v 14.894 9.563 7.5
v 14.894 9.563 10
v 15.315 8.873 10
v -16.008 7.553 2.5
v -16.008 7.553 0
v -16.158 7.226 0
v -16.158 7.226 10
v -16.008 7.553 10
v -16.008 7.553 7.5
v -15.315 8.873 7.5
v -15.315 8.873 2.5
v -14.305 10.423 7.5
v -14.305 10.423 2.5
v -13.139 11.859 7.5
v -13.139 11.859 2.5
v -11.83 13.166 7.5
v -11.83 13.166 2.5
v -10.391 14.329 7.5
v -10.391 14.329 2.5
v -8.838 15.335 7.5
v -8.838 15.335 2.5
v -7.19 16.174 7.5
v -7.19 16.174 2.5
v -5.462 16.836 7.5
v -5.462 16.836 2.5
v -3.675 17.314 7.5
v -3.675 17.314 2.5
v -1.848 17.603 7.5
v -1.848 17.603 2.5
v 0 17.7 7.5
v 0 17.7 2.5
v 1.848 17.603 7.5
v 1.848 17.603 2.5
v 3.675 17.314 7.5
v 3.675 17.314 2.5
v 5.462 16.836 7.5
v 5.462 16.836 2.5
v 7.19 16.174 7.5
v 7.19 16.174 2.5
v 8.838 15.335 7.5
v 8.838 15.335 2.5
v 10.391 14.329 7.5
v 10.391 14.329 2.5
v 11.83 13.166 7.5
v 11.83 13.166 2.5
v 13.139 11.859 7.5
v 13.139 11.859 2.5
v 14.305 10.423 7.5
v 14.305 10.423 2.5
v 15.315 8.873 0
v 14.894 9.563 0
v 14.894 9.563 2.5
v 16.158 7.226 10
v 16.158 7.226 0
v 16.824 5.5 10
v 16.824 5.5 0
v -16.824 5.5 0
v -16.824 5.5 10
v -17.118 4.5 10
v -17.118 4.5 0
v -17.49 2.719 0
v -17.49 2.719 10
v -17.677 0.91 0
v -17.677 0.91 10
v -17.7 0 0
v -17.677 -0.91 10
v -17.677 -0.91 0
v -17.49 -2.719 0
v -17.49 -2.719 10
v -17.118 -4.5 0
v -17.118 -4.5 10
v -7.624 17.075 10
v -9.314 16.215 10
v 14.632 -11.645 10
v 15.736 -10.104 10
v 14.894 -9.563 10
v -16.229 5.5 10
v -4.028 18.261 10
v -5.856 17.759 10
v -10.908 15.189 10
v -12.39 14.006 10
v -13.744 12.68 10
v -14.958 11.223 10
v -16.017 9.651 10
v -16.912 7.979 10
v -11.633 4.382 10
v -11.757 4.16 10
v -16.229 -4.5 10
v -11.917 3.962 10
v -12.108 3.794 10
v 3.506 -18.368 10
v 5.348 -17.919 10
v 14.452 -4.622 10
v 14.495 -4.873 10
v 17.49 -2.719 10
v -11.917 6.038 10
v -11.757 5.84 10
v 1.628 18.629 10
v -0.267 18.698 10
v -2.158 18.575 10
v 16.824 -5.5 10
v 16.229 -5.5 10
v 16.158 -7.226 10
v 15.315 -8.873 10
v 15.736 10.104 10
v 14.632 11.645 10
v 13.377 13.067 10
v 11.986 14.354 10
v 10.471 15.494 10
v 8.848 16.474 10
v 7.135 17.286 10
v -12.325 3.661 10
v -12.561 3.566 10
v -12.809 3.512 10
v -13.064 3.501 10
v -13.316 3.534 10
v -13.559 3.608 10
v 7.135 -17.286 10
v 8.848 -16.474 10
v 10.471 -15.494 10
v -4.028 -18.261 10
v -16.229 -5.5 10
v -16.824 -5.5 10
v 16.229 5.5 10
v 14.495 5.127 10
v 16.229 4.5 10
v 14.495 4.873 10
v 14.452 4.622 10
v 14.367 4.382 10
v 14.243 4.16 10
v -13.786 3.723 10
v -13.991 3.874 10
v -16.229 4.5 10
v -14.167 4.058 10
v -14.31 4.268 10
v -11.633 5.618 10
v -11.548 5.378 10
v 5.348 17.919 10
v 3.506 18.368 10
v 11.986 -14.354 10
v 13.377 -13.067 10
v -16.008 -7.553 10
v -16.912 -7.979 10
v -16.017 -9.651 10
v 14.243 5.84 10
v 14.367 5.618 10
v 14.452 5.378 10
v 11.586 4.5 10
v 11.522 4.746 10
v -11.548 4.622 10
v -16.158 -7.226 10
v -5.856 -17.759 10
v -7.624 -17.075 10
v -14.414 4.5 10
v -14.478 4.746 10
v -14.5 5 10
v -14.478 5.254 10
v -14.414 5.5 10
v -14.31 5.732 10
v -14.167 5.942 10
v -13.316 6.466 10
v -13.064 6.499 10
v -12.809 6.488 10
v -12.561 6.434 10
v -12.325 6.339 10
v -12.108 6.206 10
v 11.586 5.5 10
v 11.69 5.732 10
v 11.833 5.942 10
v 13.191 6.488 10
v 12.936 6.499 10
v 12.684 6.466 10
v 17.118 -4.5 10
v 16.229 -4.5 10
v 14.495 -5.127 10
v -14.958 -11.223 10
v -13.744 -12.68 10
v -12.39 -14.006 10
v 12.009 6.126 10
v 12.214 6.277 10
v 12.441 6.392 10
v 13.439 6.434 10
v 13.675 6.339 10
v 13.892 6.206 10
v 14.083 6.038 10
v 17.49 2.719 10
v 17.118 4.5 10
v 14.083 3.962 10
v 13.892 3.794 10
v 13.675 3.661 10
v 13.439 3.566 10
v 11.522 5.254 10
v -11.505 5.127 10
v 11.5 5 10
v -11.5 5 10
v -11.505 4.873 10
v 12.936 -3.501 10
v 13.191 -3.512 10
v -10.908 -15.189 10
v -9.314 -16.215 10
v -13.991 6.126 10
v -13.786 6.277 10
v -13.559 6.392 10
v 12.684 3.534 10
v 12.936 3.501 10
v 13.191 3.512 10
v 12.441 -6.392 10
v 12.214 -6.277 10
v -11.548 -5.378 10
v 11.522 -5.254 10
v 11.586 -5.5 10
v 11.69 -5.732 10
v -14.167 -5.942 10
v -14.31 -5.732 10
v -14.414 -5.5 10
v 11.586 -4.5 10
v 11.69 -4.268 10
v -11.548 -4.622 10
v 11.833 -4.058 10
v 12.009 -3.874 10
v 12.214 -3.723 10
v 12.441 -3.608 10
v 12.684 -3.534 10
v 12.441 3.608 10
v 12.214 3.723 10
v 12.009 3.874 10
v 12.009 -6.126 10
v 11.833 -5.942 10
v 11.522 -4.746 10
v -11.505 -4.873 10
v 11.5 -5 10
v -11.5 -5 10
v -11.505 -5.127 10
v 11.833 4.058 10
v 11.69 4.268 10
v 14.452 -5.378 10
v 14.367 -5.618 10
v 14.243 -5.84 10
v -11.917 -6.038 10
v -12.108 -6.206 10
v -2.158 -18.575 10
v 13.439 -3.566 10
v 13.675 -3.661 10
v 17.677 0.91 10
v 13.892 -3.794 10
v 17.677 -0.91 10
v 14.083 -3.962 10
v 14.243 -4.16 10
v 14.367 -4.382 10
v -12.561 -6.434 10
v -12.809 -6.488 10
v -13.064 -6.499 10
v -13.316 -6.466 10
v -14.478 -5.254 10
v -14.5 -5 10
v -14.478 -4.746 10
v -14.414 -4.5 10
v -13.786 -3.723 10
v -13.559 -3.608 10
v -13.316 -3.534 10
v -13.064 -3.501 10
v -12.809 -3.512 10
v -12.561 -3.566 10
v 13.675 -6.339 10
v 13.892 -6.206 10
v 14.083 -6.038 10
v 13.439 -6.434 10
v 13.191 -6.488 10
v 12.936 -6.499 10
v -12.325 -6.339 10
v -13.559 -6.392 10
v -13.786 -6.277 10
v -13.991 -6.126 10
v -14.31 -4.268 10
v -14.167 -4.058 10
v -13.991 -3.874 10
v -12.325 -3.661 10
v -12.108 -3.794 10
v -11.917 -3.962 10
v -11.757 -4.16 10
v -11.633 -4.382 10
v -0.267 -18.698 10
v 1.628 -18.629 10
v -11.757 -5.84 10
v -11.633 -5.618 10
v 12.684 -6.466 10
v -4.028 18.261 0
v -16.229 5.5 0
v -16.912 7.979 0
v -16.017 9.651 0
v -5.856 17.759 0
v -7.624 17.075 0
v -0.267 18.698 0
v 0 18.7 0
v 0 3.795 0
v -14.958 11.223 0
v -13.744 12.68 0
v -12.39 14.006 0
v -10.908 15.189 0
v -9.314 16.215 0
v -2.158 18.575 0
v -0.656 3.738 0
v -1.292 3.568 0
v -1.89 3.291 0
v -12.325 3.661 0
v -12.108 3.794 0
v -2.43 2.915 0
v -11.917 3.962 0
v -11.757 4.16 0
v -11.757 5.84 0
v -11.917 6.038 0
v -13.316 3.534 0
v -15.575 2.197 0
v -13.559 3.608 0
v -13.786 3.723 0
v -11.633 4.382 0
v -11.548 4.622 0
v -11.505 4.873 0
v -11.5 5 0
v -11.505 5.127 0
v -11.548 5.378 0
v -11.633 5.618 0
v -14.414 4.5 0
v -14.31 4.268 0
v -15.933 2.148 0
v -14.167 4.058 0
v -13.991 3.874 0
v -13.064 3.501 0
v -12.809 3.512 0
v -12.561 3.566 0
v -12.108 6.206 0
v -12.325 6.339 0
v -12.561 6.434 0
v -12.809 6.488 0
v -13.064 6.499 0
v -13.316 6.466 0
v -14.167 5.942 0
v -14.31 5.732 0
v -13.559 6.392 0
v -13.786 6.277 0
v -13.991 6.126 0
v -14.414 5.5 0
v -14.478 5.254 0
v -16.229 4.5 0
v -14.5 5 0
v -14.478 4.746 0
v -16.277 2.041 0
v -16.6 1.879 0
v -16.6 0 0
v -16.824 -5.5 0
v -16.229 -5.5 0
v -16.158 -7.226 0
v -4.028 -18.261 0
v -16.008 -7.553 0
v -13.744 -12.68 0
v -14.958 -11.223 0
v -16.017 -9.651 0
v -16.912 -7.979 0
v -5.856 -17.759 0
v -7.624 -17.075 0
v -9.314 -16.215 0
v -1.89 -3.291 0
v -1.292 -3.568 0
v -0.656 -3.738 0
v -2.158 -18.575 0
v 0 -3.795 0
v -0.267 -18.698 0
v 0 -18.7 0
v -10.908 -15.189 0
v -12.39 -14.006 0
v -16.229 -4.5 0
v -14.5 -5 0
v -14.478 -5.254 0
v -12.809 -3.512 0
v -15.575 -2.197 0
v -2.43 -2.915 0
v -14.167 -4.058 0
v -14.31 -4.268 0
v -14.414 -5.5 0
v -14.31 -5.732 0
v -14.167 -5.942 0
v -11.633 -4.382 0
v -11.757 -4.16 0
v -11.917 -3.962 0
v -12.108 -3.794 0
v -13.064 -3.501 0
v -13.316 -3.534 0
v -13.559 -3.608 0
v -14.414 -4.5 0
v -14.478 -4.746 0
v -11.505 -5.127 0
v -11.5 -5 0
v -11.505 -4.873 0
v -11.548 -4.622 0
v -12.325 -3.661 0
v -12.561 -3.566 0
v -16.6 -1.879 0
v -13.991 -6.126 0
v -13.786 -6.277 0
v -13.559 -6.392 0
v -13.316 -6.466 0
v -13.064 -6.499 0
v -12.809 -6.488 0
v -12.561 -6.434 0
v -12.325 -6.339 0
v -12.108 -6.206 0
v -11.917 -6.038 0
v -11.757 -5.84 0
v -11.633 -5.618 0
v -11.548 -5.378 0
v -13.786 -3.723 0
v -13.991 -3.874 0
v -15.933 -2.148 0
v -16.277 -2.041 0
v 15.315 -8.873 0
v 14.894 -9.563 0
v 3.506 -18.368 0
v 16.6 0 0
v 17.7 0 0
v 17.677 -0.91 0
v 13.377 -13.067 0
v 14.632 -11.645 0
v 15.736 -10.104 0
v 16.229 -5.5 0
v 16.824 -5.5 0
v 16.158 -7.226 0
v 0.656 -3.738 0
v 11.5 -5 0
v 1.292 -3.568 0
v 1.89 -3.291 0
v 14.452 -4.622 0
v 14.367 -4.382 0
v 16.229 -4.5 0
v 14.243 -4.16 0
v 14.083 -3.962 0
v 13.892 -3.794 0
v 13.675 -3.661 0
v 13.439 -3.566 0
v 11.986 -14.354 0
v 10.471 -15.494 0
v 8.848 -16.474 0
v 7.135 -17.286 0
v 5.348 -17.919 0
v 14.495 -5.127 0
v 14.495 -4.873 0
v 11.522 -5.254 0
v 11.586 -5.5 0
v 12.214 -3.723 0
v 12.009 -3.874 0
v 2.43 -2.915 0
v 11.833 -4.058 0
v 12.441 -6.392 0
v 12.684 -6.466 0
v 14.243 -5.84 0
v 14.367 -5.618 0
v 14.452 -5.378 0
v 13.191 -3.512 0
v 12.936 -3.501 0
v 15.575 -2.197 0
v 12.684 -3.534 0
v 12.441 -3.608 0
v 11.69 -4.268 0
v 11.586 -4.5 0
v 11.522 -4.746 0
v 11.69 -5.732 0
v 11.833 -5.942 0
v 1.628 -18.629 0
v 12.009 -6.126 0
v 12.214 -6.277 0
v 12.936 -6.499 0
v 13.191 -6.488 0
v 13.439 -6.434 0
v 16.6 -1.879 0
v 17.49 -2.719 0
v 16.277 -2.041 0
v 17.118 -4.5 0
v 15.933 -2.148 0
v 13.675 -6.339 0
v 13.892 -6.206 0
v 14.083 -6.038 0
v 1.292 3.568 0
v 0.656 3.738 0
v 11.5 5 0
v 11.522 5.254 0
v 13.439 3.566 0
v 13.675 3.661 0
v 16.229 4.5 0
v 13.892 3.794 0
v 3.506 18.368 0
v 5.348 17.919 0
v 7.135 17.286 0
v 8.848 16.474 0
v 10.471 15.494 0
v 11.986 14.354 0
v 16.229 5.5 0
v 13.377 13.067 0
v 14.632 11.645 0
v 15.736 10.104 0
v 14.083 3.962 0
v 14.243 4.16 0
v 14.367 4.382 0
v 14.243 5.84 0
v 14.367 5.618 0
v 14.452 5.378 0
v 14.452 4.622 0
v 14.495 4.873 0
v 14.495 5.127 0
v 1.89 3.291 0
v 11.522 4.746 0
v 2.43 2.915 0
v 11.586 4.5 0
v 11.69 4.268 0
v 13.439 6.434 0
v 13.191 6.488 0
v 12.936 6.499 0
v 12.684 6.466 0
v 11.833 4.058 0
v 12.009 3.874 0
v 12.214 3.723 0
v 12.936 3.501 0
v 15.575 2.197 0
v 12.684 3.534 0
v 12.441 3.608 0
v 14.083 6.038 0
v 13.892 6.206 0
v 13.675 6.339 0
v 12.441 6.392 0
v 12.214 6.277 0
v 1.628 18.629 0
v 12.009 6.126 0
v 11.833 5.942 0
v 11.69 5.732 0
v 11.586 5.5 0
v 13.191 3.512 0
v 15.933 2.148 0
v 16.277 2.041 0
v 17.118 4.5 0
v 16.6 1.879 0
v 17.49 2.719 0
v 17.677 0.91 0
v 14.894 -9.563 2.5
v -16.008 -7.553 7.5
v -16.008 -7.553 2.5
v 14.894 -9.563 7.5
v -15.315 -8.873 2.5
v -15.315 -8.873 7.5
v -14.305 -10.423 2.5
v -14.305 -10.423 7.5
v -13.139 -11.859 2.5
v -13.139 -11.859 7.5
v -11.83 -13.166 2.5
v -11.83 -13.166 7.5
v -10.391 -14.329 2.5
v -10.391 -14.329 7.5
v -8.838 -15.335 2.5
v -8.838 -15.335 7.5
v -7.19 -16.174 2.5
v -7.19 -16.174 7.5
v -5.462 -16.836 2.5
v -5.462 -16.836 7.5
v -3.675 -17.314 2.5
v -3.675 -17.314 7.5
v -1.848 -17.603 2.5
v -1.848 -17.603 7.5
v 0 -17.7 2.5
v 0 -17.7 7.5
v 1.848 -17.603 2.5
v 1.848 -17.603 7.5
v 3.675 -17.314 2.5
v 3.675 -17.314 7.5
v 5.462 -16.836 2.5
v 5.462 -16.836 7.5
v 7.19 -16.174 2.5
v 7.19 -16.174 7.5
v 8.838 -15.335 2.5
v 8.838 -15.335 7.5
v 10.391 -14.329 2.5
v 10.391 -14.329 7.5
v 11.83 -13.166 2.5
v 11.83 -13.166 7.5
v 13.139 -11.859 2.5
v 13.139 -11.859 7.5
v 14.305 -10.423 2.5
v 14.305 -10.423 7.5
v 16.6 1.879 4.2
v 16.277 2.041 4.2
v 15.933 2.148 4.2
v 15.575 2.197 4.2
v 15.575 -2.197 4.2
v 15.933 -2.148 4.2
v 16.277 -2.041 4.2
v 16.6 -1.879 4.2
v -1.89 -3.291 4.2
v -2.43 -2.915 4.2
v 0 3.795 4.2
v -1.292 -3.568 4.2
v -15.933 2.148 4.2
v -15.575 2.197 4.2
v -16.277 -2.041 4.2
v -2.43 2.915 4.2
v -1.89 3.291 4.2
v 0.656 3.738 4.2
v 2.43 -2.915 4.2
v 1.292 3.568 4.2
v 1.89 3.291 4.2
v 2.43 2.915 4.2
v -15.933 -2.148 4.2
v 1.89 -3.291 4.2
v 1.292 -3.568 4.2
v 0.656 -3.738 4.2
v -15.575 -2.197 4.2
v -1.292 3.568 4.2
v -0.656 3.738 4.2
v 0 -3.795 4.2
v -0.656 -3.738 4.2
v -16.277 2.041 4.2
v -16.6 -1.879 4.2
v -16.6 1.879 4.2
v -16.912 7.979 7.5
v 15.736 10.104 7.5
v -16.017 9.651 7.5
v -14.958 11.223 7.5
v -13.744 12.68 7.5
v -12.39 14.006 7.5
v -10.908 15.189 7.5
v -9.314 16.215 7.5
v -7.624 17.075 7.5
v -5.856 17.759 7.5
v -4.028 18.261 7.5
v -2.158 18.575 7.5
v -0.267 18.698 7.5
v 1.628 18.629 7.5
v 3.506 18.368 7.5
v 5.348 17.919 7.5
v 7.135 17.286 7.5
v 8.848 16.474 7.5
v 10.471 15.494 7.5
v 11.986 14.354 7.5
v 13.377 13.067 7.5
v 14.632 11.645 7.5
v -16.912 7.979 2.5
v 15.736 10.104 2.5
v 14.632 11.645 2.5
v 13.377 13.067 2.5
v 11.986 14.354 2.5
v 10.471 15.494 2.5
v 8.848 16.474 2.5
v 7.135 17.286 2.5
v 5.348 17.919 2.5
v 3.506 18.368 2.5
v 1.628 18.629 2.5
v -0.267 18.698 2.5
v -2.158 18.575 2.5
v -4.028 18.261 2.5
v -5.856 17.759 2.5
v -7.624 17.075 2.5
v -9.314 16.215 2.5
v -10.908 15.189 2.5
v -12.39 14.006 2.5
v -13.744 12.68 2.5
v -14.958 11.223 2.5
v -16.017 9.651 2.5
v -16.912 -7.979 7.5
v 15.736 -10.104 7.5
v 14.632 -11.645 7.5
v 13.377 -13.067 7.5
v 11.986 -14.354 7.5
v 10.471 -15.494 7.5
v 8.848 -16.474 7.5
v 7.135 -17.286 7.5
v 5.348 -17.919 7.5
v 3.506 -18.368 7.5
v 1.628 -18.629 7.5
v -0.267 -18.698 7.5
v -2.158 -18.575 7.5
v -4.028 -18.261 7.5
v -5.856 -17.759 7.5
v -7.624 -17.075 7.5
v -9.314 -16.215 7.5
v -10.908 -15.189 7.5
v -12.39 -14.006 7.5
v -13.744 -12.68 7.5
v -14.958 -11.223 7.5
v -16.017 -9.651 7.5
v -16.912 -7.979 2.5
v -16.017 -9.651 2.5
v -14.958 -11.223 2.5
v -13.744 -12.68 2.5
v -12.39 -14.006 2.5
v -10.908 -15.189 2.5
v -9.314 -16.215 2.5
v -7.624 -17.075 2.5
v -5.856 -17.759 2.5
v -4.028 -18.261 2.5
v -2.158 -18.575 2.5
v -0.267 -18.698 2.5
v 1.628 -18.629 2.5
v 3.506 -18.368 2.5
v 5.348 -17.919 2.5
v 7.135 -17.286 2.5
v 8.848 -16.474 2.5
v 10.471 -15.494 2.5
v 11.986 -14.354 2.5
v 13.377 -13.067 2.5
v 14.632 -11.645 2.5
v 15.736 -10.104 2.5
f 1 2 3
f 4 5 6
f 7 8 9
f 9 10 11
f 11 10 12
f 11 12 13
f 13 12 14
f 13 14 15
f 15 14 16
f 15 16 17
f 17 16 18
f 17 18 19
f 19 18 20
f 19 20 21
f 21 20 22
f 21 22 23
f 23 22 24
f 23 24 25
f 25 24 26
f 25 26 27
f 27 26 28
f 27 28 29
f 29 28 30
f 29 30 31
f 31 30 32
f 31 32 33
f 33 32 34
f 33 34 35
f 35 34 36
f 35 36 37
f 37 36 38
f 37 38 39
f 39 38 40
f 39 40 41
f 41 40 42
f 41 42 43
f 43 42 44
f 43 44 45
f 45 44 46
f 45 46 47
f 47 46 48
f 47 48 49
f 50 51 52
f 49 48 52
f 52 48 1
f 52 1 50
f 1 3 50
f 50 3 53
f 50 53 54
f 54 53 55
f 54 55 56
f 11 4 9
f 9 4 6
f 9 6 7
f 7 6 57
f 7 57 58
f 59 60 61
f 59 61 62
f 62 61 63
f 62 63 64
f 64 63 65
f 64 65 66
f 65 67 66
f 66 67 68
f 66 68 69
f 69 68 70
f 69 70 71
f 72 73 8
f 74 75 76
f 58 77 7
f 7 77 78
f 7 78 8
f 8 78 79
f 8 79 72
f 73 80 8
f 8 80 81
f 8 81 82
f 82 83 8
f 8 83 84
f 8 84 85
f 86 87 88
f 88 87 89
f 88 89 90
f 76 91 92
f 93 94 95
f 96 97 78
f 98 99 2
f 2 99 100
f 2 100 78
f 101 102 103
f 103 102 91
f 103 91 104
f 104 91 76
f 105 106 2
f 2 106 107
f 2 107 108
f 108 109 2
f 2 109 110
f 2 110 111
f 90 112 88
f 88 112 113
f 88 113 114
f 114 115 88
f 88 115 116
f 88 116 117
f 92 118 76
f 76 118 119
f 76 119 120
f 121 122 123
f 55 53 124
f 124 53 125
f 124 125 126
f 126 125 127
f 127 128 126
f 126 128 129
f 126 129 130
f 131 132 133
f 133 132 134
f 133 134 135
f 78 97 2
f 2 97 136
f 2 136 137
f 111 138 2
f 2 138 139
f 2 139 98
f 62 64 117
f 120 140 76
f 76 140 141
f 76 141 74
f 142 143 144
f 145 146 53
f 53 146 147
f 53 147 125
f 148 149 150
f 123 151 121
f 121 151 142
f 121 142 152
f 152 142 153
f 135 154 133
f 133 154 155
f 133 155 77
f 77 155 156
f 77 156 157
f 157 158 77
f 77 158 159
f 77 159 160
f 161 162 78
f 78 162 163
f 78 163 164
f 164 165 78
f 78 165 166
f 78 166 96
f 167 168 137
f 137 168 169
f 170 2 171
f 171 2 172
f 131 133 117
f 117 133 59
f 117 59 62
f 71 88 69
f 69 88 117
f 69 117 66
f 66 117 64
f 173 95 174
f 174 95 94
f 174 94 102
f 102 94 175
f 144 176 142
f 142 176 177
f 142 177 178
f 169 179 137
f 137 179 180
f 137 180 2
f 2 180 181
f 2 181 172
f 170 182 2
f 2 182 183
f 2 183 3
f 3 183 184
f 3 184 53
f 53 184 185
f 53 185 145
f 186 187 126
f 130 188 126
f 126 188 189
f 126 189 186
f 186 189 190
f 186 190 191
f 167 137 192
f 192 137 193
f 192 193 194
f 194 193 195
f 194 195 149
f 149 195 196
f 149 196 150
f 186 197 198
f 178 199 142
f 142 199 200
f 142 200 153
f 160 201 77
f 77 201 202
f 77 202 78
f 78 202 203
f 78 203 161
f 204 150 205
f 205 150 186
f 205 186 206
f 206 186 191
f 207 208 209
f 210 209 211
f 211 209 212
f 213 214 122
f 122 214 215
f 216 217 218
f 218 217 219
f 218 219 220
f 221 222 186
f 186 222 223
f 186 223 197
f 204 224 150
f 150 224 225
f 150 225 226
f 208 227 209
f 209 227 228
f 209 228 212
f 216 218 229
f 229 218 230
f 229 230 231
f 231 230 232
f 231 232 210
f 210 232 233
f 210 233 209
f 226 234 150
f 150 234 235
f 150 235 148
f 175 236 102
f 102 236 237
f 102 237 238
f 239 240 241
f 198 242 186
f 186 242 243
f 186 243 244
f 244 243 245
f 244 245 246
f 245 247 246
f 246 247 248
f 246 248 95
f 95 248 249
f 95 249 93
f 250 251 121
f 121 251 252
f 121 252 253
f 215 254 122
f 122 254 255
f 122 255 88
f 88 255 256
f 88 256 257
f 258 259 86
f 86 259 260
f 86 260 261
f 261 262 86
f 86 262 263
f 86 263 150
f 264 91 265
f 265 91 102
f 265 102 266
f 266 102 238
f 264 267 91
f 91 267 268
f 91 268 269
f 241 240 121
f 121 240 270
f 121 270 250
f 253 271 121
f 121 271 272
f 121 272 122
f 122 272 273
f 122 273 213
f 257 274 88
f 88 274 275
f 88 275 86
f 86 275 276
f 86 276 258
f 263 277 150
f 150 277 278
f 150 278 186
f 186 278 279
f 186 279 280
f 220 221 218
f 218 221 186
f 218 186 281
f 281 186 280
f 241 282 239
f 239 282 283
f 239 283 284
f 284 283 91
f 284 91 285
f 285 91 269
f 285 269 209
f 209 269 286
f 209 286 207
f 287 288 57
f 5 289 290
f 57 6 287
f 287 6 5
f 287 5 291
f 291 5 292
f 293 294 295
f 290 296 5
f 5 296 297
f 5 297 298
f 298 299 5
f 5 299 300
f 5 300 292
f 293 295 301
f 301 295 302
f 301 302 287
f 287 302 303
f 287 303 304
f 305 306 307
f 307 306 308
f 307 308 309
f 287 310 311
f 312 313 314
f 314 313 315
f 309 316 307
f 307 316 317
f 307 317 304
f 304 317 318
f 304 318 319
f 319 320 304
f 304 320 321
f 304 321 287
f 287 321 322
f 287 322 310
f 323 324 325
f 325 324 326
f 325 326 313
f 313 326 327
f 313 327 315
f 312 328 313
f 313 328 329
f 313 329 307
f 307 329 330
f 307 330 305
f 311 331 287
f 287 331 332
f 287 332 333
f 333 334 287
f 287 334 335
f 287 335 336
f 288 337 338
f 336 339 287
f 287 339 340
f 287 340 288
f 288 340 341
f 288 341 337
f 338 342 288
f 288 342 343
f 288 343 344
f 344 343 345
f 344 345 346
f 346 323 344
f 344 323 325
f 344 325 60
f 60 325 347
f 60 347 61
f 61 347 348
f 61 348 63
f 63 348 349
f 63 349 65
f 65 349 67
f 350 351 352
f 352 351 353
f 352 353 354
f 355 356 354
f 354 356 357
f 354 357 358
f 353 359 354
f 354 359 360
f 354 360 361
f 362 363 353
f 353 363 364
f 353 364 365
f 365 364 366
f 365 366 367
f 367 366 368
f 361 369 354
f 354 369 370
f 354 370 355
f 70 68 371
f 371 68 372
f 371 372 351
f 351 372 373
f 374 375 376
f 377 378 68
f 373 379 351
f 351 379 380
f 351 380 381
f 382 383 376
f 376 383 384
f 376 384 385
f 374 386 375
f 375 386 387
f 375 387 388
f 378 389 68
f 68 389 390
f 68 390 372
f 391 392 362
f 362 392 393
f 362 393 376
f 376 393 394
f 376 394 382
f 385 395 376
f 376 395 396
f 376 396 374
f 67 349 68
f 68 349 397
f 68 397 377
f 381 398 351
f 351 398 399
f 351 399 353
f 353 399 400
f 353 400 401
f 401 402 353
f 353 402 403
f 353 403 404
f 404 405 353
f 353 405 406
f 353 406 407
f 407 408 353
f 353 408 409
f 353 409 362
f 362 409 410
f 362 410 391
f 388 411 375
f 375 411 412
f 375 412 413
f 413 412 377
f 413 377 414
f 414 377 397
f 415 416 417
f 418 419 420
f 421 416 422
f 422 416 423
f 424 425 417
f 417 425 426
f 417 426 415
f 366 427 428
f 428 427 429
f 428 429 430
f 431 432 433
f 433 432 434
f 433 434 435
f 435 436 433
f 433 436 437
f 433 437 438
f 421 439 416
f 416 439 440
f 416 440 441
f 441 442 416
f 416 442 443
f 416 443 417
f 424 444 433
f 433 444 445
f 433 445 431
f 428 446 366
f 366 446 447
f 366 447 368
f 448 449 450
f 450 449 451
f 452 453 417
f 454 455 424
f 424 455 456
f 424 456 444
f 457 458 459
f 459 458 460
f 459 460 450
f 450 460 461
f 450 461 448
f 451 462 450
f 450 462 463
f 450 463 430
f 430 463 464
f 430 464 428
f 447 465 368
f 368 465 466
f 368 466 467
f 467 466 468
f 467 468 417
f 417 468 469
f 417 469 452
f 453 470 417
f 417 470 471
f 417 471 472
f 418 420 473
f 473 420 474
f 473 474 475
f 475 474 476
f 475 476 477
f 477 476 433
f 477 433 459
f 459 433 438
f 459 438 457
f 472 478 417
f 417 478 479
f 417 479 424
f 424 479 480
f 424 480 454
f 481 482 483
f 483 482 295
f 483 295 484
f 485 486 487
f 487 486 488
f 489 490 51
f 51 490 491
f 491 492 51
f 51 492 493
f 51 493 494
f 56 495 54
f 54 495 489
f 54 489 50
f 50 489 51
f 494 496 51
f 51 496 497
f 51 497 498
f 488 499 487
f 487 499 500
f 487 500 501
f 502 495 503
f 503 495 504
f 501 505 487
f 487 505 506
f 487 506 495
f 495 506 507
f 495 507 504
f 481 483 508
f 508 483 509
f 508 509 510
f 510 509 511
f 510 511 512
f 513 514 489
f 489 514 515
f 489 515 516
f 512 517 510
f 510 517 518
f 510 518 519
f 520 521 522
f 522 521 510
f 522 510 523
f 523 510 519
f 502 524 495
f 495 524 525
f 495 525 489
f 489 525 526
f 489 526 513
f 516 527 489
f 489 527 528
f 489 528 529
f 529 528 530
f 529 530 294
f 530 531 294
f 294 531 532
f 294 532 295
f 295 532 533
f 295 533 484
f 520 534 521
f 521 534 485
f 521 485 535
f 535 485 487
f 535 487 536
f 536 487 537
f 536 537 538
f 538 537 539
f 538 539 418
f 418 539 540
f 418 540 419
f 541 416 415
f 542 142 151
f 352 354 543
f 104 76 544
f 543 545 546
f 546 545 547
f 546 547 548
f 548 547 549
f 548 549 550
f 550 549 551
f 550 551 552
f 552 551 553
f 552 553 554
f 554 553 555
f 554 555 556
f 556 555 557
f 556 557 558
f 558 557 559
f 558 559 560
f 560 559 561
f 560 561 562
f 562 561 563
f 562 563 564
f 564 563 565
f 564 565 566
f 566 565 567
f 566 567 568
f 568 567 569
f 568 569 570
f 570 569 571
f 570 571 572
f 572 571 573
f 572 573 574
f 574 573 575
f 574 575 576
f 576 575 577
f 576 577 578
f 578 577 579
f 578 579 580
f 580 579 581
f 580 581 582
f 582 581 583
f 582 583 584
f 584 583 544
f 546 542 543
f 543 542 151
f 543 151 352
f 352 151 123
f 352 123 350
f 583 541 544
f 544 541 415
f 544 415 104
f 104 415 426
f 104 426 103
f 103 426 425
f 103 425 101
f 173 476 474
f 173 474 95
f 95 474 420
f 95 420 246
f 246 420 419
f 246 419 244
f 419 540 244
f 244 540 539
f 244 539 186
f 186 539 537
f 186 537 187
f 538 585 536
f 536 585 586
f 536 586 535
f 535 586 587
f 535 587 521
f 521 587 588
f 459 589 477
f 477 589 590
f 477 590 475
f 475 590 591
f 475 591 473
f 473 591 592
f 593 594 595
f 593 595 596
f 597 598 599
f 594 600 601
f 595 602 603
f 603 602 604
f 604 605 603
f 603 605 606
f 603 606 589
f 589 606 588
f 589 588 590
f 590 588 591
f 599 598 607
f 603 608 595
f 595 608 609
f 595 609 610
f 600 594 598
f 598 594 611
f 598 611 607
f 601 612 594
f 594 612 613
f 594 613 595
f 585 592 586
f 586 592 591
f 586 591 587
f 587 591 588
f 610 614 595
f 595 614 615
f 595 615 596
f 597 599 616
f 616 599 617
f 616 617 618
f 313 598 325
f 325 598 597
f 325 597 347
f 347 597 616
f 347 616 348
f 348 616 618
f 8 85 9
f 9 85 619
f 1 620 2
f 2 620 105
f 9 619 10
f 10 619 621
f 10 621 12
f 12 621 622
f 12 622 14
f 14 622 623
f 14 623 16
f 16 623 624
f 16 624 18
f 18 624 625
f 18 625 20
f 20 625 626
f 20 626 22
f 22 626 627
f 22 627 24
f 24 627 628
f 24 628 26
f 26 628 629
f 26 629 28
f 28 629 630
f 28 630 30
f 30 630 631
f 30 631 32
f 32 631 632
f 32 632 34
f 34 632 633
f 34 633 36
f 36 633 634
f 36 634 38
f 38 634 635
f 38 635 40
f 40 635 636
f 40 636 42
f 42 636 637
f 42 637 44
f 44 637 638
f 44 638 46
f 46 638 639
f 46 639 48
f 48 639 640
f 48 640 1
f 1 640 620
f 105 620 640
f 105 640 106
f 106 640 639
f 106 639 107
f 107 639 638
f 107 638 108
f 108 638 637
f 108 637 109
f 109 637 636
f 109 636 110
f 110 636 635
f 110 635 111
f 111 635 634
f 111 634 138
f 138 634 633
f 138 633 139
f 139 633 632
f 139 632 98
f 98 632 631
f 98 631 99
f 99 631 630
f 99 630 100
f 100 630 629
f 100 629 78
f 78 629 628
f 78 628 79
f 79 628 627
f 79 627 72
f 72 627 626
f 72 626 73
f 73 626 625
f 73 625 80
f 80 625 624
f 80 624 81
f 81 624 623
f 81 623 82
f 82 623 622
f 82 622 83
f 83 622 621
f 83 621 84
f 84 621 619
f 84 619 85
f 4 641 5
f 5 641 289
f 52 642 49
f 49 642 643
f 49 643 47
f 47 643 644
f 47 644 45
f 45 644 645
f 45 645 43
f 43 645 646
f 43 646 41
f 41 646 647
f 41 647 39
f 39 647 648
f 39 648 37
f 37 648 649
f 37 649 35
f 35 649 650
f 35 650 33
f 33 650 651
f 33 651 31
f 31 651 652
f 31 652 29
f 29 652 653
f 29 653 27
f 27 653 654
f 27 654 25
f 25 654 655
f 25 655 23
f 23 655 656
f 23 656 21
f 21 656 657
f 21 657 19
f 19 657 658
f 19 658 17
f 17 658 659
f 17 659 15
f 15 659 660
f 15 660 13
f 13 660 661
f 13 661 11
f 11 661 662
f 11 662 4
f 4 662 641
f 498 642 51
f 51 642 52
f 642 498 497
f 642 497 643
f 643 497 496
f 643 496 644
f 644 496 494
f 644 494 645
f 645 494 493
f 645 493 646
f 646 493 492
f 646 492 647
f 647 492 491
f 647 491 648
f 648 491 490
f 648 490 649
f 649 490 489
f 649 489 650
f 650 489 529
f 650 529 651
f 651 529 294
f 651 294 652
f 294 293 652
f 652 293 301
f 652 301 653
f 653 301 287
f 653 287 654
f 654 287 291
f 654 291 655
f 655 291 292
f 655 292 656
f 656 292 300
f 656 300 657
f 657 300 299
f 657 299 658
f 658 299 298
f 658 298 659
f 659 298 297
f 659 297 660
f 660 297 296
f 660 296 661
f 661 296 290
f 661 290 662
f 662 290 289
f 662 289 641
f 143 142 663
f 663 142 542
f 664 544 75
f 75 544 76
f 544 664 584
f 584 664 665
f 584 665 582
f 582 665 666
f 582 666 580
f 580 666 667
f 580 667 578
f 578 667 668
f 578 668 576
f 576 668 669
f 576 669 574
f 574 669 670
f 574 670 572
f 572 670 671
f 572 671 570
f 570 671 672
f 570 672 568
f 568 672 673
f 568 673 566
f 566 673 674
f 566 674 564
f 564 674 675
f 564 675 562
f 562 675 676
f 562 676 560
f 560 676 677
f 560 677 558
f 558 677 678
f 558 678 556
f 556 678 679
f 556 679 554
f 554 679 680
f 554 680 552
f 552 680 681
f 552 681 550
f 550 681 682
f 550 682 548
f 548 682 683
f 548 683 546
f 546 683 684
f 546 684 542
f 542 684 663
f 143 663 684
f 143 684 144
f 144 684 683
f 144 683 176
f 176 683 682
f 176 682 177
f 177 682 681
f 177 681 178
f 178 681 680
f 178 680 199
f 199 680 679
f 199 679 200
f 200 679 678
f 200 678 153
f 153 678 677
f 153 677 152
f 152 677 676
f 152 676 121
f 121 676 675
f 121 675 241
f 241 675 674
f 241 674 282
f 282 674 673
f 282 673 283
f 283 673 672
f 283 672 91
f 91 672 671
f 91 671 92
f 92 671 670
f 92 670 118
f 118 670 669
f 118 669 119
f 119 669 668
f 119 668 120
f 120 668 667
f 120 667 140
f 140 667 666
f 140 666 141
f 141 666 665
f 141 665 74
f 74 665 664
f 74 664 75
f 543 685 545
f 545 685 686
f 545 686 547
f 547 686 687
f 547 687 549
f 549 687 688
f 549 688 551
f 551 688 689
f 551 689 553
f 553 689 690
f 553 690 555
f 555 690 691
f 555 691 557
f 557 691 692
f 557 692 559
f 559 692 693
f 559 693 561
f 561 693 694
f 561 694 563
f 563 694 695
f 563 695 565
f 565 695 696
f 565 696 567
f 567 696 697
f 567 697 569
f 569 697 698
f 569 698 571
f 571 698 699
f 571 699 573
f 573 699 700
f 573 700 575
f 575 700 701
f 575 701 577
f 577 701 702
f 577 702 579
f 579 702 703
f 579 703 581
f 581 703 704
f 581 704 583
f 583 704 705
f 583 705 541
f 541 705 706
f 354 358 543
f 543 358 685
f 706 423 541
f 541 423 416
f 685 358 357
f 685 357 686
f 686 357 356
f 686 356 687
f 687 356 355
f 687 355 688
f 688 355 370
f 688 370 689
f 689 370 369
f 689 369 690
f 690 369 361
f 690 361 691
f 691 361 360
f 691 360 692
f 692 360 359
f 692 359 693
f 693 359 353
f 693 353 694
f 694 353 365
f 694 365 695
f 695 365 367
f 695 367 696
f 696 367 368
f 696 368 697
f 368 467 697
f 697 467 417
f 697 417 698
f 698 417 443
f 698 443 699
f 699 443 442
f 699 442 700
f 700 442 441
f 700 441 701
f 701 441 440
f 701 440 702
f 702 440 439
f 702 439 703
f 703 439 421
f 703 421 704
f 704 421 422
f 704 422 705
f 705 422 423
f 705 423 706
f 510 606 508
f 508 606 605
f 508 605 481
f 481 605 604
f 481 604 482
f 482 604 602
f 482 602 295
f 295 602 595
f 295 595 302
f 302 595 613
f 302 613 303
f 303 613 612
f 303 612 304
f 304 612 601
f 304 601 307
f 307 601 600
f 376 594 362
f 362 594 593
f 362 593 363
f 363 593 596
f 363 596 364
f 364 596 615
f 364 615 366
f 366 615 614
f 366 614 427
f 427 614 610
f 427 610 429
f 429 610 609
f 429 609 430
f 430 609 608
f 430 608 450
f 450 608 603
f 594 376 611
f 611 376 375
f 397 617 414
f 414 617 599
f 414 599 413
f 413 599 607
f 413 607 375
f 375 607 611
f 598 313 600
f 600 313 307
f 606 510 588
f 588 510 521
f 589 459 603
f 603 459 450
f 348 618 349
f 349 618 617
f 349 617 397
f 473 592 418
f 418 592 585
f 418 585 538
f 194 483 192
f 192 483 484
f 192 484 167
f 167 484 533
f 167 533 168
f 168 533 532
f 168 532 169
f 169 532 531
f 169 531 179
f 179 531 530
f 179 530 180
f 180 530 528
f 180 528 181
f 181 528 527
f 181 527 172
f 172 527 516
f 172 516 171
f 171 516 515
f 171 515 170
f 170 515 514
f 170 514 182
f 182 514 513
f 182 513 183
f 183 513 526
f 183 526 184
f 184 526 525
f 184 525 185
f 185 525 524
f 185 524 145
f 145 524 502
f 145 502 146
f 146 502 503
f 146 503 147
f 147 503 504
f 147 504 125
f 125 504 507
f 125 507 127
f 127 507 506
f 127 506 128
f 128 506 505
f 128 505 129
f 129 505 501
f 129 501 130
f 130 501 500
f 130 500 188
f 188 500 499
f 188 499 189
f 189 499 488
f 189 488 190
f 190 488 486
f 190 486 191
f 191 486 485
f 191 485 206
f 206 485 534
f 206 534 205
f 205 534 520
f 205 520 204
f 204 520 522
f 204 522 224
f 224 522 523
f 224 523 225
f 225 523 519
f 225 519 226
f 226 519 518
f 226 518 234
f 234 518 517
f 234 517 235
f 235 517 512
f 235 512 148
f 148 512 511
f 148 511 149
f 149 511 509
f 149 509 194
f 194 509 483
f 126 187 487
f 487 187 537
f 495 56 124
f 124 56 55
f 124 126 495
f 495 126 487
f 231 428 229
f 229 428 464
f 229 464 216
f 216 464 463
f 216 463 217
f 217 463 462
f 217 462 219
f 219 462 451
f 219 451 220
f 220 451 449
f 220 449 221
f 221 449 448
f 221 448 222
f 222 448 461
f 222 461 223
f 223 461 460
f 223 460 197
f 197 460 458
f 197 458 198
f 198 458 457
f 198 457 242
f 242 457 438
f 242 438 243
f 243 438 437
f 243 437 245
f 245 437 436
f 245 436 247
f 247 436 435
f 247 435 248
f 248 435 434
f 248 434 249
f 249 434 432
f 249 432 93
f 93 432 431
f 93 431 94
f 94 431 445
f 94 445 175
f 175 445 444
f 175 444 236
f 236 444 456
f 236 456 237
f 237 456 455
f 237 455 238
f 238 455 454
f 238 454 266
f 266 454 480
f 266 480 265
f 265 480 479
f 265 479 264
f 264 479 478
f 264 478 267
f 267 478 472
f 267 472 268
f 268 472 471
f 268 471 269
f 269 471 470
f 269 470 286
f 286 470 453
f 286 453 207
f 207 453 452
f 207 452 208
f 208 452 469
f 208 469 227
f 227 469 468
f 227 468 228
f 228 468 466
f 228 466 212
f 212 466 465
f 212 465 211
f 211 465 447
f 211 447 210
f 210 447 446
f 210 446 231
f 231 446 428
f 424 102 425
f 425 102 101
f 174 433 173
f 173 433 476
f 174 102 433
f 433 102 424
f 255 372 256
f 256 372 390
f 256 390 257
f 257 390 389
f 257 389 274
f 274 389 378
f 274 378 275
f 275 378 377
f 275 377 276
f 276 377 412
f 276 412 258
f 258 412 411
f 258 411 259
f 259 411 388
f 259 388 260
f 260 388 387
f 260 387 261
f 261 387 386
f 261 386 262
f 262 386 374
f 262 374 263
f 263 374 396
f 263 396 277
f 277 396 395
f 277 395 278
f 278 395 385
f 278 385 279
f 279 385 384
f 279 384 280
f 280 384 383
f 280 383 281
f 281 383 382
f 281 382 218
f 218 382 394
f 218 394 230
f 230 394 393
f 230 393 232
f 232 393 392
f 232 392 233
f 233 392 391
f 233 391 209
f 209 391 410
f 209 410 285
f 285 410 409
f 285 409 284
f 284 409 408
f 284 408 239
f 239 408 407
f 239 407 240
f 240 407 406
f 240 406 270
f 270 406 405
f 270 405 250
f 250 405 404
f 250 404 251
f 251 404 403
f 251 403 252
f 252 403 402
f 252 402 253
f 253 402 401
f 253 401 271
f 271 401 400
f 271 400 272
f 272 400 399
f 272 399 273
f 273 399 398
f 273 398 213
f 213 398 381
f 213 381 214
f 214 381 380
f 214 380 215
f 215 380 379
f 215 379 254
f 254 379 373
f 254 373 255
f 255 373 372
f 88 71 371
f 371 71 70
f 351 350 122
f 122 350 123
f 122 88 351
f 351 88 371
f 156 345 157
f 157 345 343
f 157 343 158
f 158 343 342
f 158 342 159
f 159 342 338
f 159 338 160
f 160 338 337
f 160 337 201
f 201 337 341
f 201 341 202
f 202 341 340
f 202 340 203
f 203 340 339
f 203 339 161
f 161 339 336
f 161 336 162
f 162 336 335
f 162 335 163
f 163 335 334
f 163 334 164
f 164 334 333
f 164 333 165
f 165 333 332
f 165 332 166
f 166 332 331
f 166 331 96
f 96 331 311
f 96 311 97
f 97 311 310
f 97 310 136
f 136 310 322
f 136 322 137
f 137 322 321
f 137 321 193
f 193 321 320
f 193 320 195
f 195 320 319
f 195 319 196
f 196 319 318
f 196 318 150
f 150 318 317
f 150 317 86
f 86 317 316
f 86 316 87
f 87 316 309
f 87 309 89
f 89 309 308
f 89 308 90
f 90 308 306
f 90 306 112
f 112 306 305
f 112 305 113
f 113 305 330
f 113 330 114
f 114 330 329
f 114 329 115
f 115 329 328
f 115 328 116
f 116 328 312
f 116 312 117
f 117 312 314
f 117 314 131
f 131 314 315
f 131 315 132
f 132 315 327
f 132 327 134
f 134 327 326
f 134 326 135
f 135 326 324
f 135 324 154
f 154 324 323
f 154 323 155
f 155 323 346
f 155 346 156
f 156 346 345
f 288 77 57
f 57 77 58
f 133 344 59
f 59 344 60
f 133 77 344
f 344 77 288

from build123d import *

# Parameters (mm, degrees)
CROQUIS1_R                   = 17.7
SALIENTE_EXTRUIR1_DEPTH      = 10
ENVOLVER1_SECTION_W          = 1
ENVOLVER1_SECTION_H          = 2.5
ENVOLVER1_ANGLE              = 122.036773313
ENVOLVER1_SECTOR_2_SECTION_W = 1
ENVOLVER1_SECTOR_2_SECTION_H = 2.5
ENVOLVER1_SECTOR_2_ANGLE     = 122.036773313
SIMETR_A1_DEPTH              = 2.5
SIMETR_A1_START              = 7.5
SIMETR_A1_2_DEPTH            = 2.5
CAVIDAD1_DEPTH               = 4.2
SALIENTE_EXTRUIR2_START      = 4.2
SALIENTE_EXTRUIR2_DEPTH      = 4.2
CROQUIS6_R                   = 1.5
CORTAR_EXTRUIR1_DEPTH        = 10
CROQUIS8_W                   = 1.5
CROQUIS8_H                   = 1
CORTAR_EXTRUIR2_DEPTH        = 10
SIMETR_A4_COPY_1_SKETCH_R    = 1.5
SIMETR_A4_COPY_1_DEPTH       = 10
SIMETR_A4_COPY_2_SKETCH_W    = 1.5
SIMETR_A4_COPY_2_SKETCH_H    = 1
SIMETR_A4_COPY_2_DEPTH       = 10


# Read off the part's stored shape, not the designer's step: Simetría1, Cavidad1
with BuildPart() as part:
    # Croquis1 → Saliente-Extruir1 (new body)
    with BuildSketch(Plane.XY):
        Circle(CROQUIS1_R)
    extrude(amount=SALIENTE_EXTRUIR1_DEPTH)

    # Envolver1 section (on wrap section) → Envolver1 (revolve)
    with BuildSketch(Plane(origin=(0, 0, 0), x_dir=(-0.9043880828615337, 0.4267109039830592, 0), z_dir=(-0.4267109039830592, -0.9043880828615337, 0))):
        with Locations((18.2, -8.75)):
            Rectangle(ENVOLVER1_SECTION_W, ENVOLVER1_SECTION_H)
    revolve(axis=Axis((0, 0, 0), (0, 0, -1)), revolution_arc=ENVOLVER1_ANGLE)

    # Envolver1 sector 2 section (on wrap section) → Envolver1 sector 2 (revolve)
    with BuildSketch(Plane(origin=(0, 0, 0), x_dir=(-0.9043880828615337, 0.4267109039830592, 0), z_dir=(-0.4267109039830592, -0.9043880828615337, 0))):
        with Locations((18.2, -1.25)):
            Rectangle(ENVOLVER1_SECTOR_2_SECTION_W, ENVOLVER1_SECTOR_2_SECTION_H)
    revolve(axis=Axis((0, 0, 0), (0, 0, -1)), revolution_arc=ENVOLVER1_SECTOR_2_ANGLE)

    # Simetría1 outline → Simetría1 (add)
    with BuildSketch(Plane.XY):
        with BuildLine():
            ThreePointArc((-16.91205715, -7.979493904), (-1.214117133, -18.660544461), (15.735507416, -10.10365312))
            Line((15.735507416, -10.10365312), (14.894036431, -9.563350814))
            ThreePointArc((14.894036431, -9.563350814), (-1.149191083, -17.662654383), (-16.007669067, -7.552783))
            Line((-16.007669067, -7.552783), (-16.91205715, -7.979493904))
        make_face()
    extrude(amount=SIMETR_A1_DEPTH)

    # Simetr_a1 2 outline → Simetr_a1 2 (add)
    with BuildSketch(Plane.XY.offset(SIMETR_A1_START)):
        with BuildLine():
            ThreePointArc((-16.91205715, -7.979493904), (-1.214117133, -18.660544461), (15.735507416, -10.10365312))
            Line((15.735507416, -10.10365312), (14.894036431, -9.563350814))
            ThreePointArc((14.894036431, -9.563350814), (-1.149191083, -17.662654383), (-16.007669067, -7.552783))
            Line((-16.007669067, -7.552783), (-16.91205715, -7.979493904))
        make_face()
    extrude(amount=SIMETR_A1_2_DEPTH)

    # Cavidad1 outline → Cavidad1 (cut)
    with BuildSketch(Plane.XY):
        with BuildLine():
            Line((15.575034164, 2.196722968), (2.429979424, 2.915))
            ThreePointArc((2.429979424, 2.915), (0, 3.795), (-2.429979424, 2.915))
            Line((-2.429979424, 2.915), (-15.575034164, 2.196722968))
            ThreePointArc((-15.575034164, 2.196722968), (-17.655, 0), (-15.575034164, -2.196722968))
            Line((-15.575034164, -2.196722968), (-2.429979424, -2.915))
            ThreePointArc((-2.429979424, -2.915), (0, -3.795), (2.429979424, -2.915))
            Line((2.429979424, -2.915), (15.575034164, -2.196722968))
            ThreePointArc((15.575034164, -2.196722968), (17.655, 0), (15.575034164, 2.196722968))
        make_face()
    extrude(amount=CAVIDAD1_DEPTH, mode=Mode.SUBTRACT)

    # Croquis5 → Saliente-Extruir2 (add)
    with BuildSketch(Plane(origin=(0, 0, 4.2), x_dir=(-1, 0, 0), z_dir=(0, 0, -1)).offset(SALIENTE_EXTRUIR2_START)):
        with BuildLine():
            Line((16.6, -1.878556627), (16.6, 1.878556627))
            ThreePointArc((16.6, 1.878556627), (17.655, 0), (16.6, -1.878556627))
        make_face()
    saliente_extruir2 = extrude(amount=-SALIENTE_EXTRUIR2_DEPTH)

    # Simetría2: Saliente-Extruir2 across plane
    add(saliente_extruir2.mirror(Plane(origin=(0, 0, 0), x_dir=(0, 0, 1), z_dir=(1, 0, 0))))

    # Croquis6 → Cortar-Extruir1 (cut)
    with BuildSketch(Plane(origin=(0, 0, 0), x_dir=(-1, 0, 0), z_dir=(0, 0, -1))):
        with Locations((-13, 5)):
            Circle(CROQUIS6_R)
    cortar_extruir1 = extrude(amount=-CORTAR_EXTRUIR1_DEPTH, mode=Mode.SUBTRACT)

    # Croquis8 → Cortar-Extruir2 (cut)
    with BuildSketch(Plane(origin=(0, 0, 0), x_dir=(-1, 0, 0), z_dir=(0, 0, -1))):
        with Locations((-16.979104806, 5)):
            Rectangle(CROQUIS8_W, CROQUIS8_H)
    cortar_extruir2 = extrude(amount=-CORTAR_EXTRUIR2_DEPTH, mode=Mode.SUBTRACT)

    # Simetría3: Cortar-Extruir1, Cortar-Extruir2 across plane
    add(cortar_extruir1.mirror(Plane.ZX), mode=Mode.SUBTRACT)
    add(cortar_extruir2.mirror(Plane.ZX), mode=Mode.SUBTRACT)

    # Simetría4: Cortar-Extruir1, Cortar-Extruir2 across plane
    add(cortar_extruir1.mirror(Plane(origin=(0, 0, 0), x_dir=(0, 0, 1), z_dir=(1, 0, 0))), mode=Mode.SUBTRACT)
    add(cortar_extruir2.mirror(Plane(origin=(0, 0, 0), x_dir=(0, 0, 1), z_dir=(1, 0, 0))), mode=Mode.SUBTRACT)

    # Simetría4 copy 1 sketch → Simetría4 copy 1 (cut)
    with BuildSketch(Plane(origin=(0, 0, 0), x_dir=(1, 0, 0), z_dir=(0, 0, -1))):
        with Locations((-13, 5)):
            Circle(SIMETR_A4_COPY_1_SKETCH_R)
    extrude(amount=-SIMETR_A4_COPY_1_DEPTH, mode=Mode.SUBTRACT)

    # Simetría4 copy 2 sketch → Simetría4 copy 2 (cut)
    with BuildSketch(Plane(origin=(0, 0, 0), x_dir=(1, 0, 0), z_dir=(0, 0, -1))):
        with Locations((-16.979104806, 5)):
            Rectangle(SIMETR_A4_COPY_2_SKETCH_W, SIMETR_A4_COPY_2_SKETCH_H)
    extrude(amount=-SIMETR_A4_COPY_2_DEPTH, mode=Mode.SUBTRACT)


solid = part.part
